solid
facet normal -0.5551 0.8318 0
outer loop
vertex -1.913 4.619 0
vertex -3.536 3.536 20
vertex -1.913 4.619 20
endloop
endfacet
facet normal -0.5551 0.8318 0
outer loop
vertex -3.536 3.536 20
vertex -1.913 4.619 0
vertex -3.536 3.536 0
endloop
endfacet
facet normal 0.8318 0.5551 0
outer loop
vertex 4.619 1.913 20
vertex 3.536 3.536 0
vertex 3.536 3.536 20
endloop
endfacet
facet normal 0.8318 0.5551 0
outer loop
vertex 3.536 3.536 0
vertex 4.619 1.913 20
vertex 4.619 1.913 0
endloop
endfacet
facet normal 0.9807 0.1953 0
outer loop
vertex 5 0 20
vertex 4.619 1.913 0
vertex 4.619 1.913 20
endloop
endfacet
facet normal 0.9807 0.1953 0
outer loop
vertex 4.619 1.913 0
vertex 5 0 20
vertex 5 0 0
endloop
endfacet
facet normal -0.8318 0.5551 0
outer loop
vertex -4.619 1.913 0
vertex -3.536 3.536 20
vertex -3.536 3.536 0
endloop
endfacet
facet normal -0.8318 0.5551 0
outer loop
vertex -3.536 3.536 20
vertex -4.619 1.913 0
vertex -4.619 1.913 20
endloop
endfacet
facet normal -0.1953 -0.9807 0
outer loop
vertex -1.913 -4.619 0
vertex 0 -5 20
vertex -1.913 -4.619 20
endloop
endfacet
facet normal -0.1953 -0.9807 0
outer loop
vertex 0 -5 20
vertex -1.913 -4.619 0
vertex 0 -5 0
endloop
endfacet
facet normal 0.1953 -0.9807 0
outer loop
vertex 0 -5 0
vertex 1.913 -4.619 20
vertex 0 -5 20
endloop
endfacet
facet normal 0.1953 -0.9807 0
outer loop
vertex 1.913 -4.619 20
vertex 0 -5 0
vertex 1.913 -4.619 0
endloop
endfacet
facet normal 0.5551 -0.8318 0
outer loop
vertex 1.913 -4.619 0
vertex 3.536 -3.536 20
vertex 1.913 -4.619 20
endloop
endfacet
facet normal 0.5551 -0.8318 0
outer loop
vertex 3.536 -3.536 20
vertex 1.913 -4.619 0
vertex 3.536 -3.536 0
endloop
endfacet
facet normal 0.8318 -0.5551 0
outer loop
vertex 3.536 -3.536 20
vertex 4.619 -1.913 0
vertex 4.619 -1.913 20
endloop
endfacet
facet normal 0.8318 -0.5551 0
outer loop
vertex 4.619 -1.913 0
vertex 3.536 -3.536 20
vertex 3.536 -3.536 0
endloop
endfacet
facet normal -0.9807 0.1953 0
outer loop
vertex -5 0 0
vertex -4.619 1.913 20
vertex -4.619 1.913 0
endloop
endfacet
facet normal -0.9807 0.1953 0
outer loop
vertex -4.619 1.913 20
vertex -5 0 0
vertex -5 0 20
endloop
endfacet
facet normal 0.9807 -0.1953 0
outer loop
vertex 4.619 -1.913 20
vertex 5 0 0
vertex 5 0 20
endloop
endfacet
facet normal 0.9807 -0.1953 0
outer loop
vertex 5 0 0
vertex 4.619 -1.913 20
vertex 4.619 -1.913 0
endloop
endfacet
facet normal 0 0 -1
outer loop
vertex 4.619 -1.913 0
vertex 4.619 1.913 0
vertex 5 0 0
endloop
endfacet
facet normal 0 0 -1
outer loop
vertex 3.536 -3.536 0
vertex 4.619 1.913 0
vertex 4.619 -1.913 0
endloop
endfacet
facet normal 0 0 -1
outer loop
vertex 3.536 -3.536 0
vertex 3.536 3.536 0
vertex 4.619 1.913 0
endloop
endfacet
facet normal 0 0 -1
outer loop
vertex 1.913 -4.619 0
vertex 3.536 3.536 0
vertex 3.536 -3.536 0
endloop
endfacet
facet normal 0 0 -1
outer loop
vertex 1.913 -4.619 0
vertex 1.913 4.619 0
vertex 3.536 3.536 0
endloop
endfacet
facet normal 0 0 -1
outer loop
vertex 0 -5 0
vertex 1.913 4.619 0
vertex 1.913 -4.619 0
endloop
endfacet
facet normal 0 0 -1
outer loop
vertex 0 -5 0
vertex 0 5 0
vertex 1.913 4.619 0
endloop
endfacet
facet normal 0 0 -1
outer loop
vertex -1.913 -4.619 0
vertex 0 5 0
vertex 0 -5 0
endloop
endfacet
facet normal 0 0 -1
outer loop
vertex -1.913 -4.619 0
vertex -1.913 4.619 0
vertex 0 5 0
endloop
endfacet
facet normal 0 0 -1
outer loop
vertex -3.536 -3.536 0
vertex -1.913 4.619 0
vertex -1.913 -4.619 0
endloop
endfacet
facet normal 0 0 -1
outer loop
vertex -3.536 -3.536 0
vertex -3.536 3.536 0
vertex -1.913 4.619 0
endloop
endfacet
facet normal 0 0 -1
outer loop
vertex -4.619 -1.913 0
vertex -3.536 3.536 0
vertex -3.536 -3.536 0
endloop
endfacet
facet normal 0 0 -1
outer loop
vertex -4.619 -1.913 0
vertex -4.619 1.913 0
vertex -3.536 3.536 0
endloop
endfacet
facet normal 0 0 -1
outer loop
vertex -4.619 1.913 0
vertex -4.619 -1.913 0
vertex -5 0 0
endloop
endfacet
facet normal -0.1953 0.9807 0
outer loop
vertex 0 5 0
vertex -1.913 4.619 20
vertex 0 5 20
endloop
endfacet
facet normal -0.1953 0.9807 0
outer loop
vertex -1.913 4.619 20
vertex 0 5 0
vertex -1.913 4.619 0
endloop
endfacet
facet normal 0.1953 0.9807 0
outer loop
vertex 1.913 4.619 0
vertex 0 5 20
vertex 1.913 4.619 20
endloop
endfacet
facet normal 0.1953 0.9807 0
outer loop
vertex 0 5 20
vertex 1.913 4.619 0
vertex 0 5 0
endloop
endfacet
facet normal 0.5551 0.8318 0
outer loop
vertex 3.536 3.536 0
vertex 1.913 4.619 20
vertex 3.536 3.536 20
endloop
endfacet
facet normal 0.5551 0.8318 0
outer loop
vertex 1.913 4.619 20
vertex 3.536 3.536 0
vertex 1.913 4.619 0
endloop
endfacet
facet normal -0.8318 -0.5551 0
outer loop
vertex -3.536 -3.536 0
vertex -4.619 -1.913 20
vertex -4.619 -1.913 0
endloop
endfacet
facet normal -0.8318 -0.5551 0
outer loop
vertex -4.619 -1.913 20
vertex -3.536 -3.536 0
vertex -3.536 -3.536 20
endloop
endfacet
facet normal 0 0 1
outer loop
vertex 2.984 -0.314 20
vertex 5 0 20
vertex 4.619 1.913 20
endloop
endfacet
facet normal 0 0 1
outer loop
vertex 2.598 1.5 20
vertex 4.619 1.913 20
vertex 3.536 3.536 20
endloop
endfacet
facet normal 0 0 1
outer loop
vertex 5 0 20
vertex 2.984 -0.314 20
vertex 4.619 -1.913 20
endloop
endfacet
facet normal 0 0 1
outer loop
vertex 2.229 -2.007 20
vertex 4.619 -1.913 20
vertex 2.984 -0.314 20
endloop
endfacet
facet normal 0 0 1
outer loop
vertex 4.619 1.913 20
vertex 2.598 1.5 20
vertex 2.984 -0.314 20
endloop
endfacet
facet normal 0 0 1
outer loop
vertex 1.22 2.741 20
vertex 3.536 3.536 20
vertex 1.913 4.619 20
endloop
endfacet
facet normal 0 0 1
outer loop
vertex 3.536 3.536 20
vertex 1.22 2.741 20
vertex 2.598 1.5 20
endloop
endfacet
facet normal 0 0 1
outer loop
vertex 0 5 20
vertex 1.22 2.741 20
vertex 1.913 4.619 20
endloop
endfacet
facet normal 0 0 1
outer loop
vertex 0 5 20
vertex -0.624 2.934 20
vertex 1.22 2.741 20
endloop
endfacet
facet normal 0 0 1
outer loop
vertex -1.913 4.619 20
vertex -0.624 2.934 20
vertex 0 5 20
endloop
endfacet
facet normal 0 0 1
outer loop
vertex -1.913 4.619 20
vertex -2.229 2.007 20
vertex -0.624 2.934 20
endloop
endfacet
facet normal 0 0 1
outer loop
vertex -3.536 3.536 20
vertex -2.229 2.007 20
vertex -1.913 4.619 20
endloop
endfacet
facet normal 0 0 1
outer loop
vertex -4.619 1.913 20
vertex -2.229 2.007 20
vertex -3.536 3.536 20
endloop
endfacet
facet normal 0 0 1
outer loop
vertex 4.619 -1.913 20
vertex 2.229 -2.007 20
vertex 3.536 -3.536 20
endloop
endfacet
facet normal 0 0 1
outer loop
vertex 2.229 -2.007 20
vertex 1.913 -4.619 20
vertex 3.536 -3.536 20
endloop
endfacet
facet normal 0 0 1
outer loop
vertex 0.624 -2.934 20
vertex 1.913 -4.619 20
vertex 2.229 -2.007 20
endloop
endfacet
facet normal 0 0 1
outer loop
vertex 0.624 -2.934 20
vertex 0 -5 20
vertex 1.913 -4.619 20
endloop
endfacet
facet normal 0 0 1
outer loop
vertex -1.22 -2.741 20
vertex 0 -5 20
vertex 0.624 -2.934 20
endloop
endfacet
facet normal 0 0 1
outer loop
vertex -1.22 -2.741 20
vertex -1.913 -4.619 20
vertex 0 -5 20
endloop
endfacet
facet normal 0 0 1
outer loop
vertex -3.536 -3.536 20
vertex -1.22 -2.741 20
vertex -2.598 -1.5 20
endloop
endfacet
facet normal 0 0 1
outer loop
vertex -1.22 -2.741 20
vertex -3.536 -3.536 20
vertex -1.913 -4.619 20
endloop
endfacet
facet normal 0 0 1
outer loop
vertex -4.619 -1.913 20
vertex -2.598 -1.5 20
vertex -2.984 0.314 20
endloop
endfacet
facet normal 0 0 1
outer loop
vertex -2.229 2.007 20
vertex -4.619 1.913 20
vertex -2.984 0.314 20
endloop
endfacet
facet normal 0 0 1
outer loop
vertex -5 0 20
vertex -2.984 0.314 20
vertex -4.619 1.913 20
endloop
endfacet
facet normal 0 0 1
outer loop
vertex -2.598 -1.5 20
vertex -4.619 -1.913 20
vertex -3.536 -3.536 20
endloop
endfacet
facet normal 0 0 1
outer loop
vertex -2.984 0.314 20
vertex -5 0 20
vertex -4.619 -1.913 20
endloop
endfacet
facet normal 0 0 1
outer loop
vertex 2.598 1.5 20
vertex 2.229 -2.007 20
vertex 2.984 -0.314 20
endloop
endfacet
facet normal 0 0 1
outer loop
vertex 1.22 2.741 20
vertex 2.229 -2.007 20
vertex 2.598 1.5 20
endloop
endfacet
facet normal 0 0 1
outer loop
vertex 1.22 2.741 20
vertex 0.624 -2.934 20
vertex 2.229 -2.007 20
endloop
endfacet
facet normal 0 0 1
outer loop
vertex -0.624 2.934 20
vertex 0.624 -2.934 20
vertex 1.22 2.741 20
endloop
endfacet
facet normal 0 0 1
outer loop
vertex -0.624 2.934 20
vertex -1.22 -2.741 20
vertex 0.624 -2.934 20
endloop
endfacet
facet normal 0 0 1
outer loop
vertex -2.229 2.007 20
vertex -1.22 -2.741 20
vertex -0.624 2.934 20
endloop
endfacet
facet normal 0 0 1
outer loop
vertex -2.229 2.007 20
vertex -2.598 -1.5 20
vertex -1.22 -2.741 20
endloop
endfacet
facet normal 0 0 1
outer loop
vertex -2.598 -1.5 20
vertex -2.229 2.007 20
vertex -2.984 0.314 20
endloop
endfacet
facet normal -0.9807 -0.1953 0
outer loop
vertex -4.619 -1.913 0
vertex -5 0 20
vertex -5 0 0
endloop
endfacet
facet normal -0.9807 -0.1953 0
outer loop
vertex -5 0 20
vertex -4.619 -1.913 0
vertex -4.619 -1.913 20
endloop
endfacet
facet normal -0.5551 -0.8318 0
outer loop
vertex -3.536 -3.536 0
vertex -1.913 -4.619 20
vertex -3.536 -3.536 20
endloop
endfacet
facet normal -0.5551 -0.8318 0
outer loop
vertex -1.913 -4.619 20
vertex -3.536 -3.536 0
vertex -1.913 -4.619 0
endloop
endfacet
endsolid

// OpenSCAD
module bent_cylinder(height, radius1, radius2, twist_angle) {
  difference() {
    cylinder(h = height, r = radius1);
    translate([0, 0, height]) {
      rotate([0, 0, twist_angle]) {
        cylinder(h = height, r = radius2);
      }
    }
  }
}

// Example usage:
bent_cylinder(height = 20, radius1 = 5, radius2 = 3, twist_angle = 30);
